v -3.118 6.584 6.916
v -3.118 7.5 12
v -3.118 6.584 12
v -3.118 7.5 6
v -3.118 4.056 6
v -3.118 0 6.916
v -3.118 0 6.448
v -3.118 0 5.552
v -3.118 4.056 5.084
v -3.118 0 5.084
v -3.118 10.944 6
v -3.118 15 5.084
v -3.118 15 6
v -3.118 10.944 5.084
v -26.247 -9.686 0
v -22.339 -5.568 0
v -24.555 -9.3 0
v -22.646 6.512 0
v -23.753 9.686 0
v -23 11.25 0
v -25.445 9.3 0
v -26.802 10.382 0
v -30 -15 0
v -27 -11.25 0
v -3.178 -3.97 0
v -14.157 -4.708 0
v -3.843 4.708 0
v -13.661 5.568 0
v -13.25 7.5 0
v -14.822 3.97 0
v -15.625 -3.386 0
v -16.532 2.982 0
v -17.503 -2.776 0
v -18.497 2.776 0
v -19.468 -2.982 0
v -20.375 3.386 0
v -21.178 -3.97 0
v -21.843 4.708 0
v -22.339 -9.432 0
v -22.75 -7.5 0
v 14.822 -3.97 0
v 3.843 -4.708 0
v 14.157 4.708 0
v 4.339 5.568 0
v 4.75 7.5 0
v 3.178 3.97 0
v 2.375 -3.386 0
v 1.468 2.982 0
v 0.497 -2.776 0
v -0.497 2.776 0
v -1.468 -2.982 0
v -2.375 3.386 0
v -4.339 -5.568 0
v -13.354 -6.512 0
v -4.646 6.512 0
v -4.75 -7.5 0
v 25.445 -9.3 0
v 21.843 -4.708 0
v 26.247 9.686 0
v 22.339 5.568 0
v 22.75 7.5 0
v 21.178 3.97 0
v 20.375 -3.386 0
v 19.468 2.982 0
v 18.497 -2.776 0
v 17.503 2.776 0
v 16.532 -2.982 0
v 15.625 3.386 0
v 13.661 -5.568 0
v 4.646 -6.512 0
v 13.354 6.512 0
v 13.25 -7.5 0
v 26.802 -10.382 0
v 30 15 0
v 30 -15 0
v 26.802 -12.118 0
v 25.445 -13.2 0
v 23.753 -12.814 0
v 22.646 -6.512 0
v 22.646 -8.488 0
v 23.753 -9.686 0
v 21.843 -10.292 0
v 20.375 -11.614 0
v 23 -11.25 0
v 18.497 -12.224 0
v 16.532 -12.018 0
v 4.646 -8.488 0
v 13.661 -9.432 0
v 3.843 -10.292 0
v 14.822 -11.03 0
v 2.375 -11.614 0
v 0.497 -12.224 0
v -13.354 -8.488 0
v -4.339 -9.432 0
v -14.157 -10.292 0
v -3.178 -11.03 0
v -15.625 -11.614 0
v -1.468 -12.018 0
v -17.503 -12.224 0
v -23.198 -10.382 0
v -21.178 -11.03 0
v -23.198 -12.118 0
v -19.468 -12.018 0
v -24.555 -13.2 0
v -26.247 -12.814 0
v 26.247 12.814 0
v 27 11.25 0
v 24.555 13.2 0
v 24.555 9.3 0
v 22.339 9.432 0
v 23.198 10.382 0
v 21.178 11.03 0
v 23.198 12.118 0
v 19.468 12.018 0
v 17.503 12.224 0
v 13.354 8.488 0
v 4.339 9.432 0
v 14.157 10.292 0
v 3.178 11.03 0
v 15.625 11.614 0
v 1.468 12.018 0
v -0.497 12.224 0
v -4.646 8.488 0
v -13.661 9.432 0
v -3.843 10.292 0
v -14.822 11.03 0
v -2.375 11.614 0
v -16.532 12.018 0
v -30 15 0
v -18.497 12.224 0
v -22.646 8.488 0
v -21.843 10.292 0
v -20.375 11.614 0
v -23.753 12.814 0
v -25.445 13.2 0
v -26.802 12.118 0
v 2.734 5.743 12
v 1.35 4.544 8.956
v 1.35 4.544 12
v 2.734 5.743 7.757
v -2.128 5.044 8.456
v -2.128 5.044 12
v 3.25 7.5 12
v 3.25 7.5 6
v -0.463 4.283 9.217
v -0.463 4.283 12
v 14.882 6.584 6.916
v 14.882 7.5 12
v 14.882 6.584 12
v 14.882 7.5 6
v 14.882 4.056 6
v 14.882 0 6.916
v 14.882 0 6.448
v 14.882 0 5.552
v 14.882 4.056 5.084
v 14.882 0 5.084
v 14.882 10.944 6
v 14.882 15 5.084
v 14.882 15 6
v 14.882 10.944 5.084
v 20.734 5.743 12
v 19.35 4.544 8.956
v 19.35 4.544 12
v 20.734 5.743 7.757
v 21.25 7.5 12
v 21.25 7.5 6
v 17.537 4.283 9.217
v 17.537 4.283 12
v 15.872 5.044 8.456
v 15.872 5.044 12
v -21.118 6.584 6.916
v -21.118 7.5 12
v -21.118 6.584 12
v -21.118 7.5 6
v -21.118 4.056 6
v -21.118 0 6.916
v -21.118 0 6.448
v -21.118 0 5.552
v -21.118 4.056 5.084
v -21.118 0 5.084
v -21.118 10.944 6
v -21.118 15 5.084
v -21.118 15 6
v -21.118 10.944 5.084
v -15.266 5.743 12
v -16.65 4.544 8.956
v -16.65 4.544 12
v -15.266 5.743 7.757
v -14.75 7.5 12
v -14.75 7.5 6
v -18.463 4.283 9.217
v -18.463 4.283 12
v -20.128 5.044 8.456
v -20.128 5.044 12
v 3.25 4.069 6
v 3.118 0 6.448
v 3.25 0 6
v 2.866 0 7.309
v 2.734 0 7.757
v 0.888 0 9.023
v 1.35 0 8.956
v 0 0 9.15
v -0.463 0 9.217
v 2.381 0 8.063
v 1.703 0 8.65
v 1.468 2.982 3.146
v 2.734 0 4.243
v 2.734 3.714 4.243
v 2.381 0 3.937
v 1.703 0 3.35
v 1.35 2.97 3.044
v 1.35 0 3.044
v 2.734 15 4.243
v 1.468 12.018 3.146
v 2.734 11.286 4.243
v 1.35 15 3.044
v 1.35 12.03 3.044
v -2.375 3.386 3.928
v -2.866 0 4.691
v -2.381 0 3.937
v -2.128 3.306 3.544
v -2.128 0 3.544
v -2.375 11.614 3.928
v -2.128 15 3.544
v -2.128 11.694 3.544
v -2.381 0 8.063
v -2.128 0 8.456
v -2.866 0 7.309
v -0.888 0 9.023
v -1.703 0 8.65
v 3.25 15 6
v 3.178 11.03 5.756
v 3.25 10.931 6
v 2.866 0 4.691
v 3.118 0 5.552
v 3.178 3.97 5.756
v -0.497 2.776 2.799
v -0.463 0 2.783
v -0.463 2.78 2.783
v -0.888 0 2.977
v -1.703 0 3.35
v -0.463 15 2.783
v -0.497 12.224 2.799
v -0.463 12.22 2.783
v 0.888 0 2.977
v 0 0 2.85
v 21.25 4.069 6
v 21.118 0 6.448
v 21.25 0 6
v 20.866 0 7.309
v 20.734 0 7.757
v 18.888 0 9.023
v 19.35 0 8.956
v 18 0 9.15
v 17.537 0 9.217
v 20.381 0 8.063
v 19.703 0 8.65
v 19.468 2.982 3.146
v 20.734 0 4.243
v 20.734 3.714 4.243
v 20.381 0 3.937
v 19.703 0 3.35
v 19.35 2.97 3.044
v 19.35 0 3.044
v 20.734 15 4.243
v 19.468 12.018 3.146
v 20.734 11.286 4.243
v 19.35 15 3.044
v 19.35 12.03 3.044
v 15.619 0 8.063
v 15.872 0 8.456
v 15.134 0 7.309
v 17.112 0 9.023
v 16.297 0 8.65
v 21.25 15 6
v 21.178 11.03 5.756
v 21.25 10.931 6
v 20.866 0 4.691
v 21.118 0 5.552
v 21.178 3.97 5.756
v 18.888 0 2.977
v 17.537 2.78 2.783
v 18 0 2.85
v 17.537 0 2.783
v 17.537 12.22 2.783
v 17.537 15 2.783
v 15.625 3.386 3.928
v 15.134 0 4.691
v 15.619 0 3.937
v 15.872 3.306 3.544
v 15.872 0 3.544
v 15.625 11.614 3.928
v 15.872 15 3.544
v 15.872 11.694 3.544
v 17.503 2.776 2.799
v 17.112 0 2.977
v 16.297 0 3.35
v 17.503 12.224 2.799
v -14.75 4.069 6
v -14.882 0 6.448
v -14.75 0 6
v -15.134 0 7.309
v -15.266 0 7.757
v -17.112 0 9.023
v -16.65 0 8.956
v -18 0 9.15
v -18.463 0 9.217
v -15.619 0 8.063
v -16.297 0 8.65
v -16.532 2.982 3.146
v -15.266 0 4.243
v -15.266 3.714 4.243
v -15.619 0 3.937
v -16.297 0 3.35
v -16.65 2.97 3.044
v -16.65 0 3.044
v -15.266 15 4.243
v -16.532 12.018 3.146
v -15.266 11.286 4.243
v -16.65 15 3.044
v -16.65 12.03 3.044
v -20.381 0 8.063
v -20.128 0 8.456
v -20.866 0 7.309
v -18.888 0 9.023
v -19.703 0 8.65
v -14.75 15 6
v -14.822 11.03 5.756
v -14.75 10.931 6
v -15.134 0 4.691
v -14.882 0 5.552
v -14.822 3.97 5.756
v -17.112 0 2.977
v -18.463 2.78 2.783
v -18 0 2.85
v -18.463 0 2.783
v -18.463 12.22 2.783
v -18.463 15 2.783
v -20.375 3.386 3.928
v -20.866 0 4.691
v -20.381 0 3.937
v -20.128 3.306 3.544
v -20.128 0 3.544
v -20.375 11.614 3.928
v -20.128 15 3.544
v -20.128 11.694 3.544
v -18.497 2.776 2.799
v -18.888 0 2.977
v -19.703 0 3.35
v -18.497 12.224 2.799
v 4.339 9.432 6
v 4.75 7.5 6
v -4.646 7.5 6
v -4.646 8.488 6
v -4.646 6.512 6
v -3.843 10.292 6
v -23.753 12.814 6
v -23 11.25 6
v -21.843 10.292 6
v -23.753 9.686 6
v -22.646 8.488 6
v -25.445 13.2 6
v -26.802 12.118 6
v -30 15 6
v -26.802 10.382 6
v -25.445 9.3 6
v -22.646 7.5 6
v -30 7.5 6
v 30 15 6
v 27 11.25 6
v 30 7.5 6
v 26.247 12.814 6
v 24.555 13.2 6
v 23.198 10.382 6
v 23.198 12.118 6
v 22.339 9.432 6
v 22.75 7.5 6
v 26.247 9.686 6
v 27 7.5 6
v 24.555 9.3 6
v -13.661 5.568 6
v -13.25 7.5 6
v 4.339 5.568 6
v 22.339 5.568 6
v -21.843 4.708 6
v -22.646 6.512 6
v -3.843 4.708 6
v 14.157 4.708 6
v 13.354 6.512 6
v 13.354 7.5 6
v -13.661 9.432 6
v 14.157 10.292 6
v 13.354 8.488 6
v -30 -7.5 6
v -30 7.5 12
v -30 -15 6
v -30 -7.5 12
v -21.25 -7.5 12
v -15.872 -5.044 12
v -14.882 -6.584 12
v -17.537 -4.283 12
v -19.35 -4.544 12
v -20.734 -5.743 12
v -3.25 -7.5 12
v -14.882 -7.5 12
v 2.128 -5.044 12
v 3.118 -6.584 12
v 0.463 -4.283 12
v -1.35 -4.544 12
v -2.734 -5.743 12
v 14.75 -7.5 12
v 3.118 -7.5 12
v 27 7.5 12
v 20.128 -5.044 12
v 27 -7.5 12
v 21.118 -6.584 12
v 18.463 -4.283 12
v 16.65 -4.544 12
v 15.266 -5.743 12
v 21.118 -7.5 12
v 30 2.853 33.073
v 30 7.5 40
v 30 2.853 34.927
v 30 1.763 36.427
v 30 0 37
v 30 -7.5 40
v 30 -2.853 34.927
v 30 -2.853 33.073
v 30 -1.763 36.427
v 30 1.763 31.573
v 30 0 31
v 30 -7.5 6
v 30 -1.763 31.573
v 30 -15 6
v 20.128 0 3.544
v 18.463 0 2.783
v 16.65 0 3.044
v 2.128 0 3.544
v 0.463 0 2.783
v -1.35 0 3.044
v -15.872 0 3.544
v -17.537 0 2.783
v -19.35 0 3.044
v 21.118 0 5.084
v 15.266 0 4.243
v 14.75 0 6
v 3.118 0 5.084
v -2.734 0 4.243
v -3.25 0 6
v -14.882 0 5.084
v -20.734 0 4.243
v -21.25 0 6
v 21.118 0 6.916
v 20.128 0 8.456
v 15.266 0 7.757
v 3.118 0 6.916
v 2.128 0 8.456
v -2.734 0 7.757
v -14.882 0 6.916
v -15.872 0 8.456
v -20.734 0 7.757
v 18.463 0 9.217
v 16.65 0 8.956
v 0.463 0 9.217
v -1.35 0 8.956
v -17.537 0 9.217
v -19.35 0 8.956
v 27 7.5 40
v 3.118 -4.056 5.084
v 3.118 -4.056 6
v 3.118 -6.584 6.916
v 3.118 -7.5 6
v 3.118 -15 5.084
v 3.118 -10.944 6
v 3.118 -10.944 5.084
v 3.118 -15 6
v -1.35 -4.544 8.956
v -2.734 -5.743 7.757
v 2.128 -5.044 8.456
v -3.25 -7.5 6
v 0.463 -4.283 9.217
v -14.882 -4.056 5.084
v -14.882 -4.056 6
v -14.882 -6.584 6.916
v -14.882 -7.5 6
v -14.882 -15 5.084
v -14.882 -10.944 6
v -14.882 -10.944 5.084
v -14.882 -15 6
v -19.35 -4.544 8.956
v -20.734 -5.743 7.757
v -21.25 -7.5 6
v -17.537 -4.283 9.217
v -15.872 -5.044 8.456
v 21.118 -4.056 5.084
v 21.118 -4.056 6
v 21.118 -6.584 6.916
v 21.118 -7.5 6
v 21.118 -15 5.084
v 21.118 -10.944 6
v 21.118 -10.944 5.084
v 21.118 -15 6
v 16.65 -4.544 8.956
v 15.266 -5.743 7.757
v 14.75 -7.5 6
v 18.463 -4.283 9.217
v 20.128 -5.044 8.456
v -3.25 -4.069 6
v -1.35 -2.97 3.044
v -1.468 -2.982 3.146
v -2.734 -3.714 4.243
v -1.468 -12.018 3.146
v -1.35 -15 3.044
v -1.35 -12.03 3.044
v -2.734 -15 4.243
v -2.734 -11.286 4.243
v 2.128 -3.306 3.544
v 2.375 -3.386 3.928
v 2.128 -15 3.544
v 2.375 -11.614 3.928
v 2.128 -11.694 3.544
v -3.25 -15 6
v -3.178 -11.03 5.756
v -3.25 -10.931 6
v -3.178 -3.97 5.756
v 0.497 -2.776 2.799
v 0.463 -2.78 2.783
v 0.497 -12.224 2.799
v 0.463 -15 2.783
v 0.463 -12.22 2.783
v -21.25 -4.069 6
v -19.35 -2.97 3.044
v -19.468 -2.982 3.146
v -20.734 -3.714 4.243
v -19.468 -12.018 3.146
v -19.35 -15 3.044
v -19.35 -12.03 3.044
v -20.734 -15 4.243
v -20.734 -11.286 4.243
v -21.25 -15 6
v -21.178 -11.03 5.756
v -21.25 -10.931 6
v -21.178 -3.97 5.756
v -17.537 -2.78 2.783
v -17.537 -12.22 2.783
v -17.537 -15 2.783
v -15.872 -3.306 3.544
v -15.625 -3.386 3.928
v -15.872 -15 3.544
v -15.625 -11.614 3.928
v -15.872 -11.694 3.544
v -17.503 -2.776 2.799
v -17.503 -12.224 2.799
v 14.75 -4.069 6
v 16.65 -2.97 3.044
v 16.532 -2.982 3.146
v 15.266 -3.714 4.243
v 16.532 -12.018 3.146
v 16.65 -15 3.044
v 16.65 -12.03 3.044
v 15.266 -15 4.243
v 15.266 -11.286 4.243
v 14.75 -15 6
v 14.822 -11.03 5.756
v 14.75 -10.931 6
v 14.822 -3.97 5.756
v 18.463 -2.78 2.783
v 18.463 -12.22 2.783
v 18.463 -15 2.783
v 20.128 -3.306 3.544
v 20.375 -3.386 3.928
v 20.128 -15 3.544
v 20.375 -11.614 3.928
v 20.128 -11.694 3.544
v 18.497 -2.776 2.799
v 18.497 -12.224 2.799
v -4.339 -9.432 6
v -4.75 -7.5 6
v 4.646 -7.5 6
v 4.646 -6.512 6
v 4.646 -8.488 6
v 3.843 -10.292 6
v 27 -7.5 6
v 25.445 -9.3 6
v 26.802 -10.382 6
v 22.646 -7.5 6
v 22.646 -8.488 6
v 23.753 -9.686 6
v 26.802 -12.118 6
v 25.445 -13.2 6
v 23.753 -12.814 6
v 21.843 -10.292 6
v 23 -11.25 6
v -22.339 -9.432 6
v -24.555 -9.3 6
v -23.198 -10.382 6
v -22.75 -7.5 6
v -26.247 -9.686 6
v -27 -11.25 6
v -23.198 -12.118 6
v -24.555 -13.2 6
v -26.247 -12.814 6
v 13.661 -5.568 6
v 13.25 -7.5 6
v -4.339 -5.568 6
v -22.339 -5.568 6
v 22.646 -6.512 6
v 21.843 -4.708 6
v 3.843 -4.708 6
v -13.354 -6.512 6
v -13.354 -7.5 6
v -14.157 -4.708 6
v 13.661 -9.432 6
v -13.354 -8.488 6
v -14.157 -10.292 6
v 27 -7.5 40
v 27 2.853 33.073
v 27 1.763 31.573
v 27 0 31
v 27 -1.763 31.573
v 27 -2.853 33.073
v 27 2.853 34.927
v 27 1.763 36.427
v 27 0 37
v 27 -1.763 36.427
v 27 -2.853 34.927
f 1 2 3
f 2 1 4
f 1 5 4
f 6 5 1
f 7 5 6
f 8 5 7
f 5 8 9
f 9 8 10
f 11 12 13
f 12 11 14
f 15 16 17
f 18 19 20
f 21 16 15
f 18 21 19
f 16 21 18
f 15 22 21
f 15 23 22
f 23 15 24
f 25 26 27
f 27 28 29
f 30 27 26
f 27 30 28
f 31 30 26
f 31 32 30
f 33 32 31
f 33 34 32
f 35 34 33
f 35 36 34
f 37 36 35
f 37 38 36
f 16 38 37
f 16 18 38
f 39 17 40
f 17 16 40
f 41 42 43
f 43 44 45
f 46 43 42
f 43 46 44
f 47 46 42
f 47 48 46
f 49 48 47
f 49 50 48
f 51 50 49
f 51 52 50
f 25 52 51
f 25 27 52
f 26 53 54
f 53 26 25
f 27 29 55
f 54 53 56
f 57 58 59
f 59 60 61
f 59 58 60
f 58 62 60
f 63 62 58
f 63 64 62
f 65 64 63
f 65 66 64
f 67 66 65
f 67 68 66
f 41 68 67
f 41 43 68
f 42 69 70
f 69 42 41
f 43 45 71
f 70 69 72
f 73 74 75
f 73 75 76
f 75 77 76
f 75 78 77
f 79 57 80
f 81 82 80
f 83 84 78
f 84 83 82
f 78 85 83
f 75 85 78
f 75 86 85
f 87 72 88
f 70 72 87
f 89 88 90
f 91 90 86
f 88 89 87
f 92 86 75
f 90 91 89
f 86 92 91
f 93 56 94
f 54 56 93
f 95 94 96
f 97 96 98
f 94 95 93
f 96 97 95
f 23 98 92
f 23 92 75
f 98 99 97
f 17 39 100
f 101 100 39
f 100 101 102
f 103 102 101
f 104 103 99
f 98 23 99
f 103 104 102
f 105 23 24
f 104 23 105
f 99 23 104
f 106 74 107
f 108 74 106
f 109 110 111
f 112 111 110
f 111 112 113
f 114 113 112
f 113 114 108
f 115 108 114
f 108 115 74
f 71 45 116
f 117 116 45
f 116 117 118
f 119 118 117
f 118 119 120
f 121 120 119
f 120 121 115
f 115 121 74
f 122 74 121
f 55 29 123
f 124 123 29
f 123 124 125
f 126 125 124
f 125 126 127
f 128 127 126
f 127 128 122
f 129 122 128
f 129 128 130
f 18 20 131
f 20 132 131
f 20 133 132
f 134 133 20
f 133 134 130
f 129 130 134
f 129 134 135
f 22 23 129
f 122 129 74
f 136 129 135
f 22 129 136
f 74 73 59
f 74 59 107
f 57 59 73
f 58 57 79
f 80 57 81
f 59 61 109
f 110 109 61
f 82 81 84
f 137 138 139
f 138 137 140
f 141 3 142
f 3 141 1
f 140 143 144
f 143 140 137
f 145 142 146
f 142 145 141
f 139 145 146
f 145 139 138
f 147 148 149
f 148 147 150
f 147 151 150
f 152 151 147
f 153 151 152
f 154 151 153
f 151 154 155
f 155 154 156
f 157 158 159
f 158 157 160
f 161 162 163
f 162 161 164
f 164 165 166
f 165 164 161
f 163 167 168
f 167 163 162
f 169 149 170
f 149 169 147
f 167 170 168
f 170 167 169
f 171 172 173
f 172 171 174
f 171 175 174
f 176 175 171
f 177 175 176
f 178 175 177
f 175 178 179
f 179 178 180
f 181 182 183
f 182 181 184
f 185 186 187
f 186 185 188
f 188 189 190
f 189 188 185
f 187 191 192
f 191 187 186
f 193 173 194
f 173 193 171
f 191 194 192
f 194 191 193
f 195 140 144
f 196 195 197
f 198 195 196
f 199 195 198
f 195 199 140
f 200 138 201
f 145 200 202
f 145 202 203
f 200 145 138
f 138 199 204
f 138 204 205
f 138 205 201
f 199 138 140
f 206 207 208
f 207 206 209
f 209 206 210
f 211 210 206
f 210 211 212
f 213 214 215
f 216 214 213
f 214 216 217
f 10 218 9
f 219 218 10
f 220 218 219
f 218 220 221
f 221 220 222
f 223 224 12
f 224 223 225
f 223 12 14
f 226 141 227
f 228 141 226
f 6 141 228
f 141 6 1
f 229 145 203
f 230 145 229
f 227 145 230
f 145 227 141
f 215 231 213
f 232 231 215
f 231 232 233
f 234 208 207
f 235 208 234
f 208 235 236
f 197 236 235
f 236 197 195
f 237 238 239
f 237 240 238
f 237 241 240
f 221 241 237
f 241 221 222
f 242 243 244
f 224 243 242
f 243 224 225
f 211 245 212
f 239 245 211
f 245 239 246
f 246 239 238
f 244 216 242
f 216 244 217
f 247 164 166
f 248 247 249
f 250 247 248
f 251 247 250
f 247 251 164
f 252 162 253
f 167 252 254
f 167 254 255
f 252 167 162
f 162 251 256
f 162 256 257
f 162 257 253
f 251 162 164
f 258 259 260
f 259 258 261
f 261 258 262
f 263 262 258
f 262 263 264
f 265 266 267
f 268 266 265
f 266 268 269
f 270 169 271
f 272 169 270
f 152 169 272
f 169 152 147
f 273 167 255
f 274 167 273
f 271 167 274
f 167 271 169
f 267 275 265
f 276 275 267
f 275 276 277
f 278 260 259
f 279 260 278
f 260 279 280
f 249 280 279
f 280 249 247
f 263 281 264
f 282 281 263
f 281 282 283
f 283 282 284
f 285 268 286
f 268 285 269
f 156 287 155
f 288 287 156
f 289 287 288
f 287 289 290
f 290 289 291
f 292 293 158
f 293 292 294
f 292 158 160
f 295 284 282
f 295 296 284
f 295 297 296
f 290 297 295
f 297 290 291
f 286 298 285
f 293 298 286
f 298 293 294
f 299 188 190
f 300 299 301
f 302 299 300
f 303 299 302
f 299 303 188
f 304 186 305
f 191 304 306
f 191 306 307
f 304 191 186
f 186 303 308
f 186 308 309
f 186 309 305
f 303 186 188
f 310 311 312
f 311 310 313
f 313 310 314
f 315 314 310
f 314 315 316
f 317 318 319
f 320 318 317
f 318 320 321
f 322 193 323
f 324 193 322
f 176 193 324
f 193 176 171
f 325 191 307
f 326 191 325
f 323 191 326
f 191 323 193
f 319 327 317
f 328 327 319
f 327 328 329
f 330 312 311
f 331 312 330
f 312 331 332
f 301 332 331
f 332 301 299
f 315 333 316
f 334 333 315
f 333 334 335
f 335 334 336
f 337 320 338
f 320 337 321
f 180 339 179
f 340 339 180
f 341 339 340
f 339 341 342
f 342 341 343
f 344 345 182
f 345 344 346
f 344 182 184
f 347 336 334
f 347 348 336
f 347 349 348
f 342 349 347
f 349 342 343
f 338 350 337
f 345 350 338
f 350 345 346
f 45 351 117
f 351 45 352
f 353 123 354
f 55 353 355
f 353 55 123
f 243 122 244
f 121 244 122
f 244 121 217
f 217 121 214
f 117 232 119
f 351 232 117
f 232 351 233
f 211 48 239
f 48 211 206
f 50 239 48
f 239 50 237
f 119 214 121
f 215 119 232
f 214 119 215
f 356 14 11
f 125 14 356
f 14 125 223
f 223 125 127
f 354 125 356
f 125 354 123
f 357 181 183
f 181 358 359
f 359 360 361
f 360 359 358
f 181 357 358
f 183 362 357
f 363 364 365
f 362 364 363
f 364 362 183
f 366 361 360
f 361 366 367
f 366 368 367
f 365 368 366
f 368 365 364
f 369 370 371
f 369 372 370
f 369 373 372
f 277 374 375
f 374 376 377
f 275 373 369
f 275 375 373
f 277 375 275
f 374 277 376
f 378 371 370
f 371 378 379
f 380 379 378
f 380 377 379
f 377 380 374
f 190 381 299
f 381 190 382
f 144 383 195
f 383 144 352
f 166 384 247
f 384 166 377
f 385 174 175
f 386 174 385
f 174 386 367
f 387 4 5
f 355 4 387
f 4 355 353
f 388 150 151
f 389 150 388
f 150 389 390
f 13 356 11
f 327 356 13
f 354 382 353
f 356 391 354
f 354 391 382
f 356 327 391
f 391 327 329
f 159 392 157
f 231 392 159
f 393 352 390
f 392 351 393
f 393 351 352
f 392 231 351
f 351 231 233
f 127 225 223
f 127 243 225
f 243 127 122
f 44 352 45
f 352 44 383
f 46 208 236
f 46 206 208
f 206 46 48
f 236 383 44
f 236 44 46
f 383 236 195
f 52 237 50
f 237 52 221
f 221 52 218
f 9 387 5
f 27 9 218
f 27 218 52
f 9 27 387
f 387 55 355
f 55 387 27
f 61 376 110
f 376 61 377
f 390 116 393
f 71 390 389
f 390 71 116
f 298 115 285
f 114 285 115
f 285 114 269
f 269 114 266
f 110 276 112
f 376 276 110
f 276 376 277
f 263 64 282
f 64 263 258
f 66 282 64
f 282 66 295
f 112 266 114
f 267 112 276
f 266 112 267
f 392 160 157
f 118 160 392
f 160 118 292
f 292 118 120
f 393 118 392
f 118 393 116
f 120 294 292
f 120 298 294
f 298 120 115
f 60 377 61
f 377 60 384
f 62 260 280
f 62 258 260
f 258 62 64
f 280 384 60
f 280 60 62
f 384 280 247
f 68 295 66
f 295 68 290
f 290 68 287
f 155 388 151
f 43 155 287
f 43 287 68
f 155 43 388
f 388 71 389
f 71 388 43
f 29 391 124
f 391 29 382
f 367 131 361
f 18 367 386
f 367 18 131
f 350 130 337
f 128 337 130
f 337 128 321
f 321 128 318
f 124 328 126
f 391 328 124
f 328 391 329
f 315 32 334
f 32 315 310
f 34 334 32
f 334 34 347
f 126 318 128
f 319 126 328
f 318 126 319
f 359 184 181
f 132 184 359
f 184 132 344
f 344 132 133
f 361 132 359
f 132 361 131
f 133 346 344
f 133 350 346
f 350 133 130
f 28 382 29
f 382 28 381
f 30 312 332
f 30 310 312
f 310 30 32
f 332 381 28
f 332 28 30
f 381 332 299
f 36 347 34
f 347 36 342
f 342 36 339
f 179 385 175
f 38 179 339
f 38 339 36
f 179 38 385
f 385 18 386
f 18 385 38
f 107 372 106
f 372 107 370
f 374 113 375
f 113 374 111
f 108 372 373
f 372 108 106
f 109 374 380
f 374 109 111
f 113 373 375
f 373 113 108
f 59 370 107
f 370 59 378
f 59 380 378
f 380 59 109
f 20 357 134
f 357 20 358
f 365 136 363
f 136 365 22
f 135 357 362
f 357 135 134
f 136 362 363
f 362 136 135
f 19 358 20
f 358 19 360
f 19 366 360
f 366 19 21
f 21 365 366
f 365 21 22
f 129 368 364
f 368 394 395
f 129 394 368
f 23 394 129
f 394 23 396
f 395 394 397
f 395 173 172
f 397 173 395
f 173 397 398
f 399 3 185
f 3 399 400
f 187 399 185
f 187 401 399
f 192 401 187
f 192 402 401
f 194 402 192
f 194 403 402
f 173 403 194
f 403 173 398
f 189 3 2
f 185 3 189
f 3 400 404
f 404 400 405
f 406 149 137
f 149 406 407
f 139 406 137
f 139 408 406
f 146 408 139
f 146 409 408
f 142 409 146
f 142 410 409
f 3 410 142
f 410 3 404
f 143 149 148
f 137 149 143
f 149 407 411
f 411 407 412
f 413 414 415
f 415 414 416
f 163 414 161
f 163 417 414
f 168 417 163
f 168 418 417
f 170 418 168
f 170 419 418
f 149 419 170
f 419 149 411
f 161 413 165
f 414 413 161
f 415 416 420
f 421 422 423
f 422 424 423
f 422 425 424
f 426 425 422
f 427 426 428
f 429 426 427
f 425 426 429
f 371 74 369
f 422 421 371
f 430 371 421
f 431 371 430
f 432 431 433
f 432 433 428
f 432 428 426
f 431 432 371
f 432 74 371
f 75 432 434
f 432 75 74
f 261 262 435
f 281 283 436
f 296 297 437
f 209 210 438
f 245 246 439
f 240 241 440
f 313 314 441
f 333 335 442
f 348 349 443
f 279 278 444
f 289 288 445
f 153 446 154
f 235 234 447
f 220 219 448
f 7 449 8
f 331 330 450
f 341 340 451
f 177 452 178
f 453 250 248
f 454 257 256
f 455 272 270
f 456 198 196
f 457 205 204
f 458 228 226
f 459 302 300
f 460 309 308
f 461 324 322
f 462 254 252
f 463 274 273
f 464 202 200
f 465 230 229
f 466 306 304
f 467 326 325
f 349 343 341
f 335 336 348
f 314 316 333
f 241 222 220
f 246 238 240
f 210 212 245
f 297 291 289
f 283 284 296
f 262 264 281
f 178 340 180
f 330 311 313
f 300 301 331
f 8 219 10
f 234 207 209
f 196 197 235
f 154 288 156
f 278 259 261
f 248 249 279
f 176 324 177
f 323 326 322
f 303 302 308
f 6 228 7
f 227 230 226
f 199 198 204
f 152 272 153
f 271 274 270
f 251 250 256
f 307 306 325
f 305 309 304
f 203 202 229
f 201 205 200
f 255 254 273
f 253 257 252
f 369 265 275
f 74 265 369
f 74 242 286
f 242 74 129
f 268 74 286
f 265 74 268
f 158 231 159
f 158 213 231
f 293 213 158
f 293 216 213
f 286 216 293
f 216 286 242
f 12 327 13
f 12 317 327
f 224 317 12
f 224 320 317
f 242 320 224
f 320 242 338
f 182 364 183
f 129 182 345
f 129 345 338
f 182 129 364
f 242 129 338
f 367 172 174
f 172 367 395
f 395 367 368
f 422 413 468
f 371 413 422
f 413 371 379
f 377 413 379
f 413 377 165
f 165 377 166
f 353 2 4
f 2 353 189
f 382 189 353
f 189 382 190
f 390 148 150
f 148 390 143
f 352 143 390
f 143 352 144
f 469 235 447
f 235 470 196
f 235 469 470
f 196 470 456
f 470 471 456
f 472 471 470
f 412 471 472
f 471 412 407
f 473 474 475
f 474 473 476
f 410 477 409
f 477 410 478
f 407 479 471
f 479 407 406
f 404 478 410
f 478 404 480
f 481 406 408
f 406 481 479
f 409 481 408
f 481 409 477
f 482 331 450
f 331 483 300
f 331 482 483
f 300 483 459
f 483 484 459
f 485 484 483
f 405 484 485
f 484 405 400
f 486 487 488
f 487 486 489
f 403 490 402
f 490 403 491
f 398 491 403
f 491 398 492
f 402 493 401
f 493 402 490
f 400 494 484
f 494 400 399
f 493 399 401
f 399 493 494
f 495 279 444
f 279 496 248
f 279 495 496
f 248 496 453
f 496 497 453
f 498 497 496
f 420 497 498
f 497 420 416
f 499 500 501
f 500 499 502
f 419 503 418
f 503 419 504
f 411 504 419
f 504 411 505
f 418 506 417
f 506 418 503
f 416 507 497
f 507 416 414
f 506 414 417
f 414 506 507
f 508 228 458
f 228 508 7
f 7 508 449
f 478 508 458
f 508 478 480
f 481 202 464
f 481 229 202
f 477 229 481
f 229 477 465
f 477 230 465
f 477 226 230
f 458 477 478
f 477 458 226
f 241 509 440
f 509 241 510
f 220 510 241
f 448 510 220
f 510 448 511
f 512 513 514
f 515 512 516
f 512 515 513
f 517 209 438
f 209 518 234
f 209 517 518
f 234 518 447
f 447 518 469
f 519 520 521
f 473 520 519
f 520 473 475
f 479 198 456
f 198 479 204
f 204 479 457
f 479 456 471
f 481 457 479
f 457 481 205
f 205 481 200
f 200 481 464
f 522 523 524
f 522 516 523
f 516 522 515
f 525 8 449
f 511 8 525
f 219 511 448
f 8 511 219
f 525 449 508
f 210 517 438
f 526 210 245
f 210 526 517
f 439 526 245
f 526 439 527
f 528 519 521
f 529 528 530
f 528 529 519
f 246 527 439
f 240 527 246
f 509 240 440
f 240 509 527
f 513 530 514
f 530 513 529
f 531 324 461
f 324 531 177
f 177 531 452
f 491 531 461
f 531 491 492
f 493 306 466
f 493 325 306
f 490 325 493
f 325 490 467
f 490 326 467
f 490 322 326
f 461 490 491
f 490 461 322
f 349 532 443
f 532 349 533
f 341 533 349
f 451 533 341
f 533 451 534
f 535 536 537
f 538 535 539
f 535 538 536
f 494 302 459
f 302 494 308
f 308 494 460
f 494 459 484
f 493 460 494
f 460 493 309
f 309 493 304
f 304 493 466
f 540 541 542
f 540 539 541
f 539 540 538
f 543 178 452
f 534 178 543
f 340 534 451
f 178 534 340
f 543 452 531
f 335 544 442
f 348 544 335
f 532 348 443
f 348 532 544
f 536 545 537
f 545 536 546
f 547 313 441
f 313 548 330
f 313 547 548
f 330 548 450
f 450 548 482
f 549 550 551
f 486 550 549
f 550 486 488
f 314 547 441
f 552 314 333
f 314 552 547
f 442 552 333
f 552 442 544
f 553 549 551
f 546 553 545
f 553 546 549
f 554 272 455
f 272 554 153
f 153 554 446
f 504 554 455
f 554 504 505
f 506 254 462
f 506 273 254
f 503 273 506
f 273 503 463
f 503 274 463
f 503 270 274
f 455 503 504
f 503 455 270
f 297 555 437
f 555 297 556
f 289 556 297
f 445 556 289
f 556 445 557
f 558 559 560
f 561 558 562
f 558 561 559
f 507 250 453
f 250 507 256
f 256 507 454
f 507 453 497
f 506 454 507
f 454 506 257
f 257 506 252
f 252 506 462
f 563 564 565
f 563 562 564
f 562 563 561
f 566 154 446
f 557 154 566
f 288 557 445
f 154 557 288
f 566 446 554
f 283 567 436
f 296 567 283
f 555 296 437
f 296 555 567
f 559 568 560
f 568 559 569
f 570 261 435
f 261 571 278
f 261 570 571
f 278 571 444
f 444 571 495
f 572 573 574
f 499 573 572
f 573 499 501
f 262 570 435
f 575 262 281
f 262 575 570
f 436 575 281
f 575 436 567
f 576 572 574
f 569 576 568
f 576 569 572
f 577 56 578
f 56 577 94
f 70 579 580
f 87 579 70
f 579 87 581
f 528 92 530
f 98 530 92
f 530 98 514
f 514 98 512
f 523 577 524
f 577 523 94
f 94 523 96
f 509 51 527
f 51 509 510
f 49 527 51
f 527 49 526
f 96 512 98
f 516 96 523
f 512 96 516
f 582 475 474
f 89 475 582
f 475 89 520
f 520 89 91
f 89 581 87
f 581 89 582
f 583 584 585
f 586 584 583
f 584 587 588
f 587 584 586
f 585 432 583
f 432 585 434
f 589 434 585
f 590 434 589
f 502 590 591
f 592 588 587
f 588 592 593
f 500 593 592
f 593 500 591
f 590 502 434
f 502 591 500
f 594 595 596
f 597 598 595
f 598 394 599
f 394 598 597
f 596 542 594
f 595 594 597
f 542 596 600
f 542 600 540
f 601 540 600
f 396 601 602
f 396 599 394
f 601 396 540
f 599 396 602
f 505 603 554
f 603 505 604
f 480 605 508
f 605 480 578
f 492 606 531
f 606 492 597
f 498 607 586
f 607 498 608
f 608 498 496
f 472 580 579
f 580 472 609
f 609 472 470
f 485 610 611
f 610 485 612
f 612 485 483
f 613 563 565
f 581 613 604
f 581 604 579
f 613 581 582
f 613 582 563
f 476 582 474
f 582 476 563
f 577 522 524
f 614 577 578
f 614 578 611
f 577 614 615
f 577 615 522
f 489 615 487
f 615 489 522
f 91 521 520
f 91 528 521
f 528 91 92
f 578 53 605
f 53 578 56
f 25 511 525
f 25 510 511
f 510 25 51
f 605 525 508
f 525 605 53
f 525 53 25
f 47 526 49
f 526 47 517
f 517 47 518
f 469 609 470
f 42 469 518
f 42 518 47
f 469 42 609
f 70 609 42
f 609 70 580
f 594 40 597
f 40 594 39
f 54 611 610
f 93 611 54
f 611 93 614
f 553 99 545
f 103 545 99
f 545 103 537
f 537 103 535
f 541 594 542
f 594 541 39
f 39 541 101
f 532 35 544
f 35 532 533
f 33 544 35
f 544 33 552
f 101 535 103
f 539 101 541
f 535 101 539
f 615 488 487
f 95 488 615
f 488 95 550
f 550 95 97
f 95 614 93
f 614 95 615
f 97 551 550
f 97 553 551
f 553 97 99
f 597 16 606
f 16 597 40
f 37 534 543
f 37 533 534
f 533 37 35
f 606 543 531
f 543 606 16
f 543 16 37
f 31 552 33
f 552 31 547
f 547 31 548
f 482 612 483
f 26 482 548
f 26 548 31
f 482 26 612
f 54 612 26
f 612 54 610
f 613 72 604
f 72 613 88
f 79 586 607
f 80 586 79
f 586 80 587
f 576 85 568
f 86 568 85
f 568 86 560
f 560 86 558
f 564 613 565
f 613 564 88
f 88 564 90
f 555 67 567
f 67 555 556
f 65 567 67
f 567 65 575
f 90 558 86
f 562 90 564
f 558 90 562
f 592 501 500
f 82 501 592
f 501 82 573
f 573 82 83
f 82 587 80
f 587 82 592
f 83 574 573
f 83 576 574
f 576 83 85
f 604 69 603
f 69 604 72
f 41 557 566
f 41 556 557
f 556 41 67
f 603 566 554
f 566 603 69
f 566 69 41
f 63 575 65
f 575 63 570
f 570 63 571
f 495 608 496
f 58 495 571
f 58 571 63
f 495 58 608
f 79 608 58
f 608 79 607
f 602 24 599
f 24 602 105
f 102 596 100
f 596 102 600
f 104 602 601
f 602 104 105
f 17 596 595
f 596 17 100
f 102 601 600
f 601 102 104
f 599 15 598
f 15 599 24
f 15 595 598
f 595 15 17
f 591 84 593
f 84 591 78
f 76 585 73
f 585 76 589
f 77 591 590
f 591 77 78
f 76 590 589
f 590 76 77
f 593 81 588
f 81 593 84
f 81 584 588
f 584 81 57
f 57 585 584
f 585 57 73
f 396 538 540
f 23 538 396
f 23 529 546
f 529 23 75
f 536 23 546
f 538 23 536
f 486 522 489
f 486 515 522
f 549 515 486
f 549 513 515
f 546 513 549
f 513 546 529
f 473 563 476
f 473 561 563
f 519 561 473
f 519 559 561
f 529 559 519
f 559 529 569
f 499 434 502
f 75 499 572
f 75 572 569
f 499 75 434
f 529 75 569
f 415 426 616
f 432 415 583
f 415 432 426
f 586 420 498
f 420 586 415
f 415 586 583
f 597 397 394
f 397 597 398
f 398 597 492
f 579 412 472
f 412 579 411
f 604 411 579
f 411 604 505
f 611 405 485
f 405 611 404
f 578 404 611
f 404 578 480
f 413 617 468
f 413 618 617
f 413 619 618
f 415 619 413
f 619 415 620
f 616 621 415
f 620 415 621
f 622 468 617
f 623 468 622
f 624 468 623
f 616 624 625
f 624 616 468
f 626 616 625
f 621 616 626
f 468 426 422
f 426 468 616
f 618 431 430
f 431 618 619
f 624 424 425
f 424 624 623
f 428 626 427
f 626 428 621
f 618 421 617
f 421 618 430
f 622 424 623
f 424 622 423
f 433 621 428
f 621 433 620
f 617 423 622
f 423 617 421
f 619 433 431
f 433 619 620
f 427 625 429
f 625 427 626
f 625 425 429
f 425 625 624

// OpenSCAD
union() {
	translate(v = [0, 7.5000000000, 0]) {
		difference() {
			translate(v = [0, 0, 6.0000000000]) {
				cube(center = true, size = [60, 15, 12]);
			}
			translate(v = [0, 7.5000000000, 0]) {
				translate(v = [0, 0, 6.0000000000]) {
					translate(v = [0, 0, 6.0000000000]) {
						cube(center = true, size = [60, 15, 12]);
					}
				}
			}
			union() {
				cylinder(d = 6.5000000000, h = 30);
				translate(v = [18, 0, 0]) {
					cylinder(d = 6.5000000000, h = 30);
				}
				translate(v = [-18, 0, 0]) {
					cylinder(d = 6.5000000000, h = 30);
				}
			}
			translate(v = [0, 15.0000000000, 0]) {
				translate(v = [0, 0, 6.0000000000]) {
					rotate(a = [90, 0, 0]) {
						union() {
							cylinder(d = 6.5000000000, h = 30);
							translate(v = [18, 0, 0]) {
								cylinder(d = 6.5000000000, h = 30);
							}
							translate(v = [-18, 0, 0]) {
								cylinder(d = 6.5000000000, h = 30);
							}
						}
					}
				}
			}
			union() {
				cylinder(d = 9.5000000000, h = 6.0000000000);
				translate(v = [18, 0, 0]) {
					cylinder(d = 9.5000000000, h = 6.0000000000);
				}
				translate(v = [-18, 0, 0]) {
					cylinder(d = 9.5000000000, h = 6.0000000000);
				}
			}
			union() {
				translate(v = [25.0000000000, 0, 0]) {
					translate(v = [0, 3.7500000000, 0]) {
						cylinder(d = 4.0000000000, h = 30);
					}
				}
				translate(v = [-25.0000000000, 0, 0]) {
					translate(v = [0, 3.7500000000, 0]) {
						cylinder(d = 4.0000000000, h = 30);
					}
				}
			}
		}
	}
	rotate(a = [0, 0, 180]) {
		translate(v = [0, 7.5000000000, 0]) {
			difference() {
				translate(v = [0, 0, 6.0000000000]) {
					cube(center = true, size = [60, 15, 12]);
				}
				translate(v = [0, 7.5000000000, 0]) {
					translate(v = [0, 0, 6.0000000000]) {
						translate(v = [0, 0, 6.0000000000]) {
							cube(center = true, size = [60, 15, 12]);
						}
					}
				}
				union() {
					cylinder(d = 6.5000000000, h = 30);
					translate(v = [18, 0, 0]) {
						cylinder(d = 6.5000000000, h = 30);
					}
					translate(v = [-18, 0, 0]) {
						cylinder(d = 6.5000000000, h = 30);
					}
				}
				translate(v = [0, 15.0000000000, 0]) {
					translate(v = [0, 0, 6.0000000000]) {
						rotate(a = [90, 0, 0]) {
							union() {
								cylinder(d = 6.5000000000, h = 30);
								translate(v = [18, 0, 0]) {
									cylinder(d = 6.5000000000, h = 30);
								}
								translate(v = [-18, 0, 0]) {
									cylinder(d = 6.5000000000, h = 30);
								}
							}
						}
					}
				}
				union() {
					cylinder(d = 9.5000000000, h = 6.0000000000);
					translate(v = [18, 0, 0]) {
						cylinder(d = 9.5000000000, h = 6.0000000000);
					}
					translate(v = [-18, 0, 0]) {
						cylinder(d = 9.5000000000, h = 6.0000000000);
					}
				}
				union() {
					translate(v = [25.0000000000, 0, 0]) {
						translate(v = [0, 3.7500000000, 0]) {
							cylinder(d = 4.0000000000, h = 30);
						}
					}
					translate(v = [-25.0000000000, 0, 0]) {
						translate(v = [0, 3.7500000000, 0]) {
							cylinder(d = 4.0000000000, h = 30);
						}
					}
				}
			}
		}
	}
	difference() {
		translate(v = [28.5000000000, 0, 0]) {
			translate(v = [0, 0, 20.0000000000]) {
				cube(center = true, size = [3, 15, 40]);
			}
		}
		translate(v = [0, 0, 34]) {
			translate(v = [20.0000000000, 0, 0]) {
				rotate(a = [0, 90, 0]) {
					cylinder(d = 6, h = 30);
				}
			}
		}
	}
}
